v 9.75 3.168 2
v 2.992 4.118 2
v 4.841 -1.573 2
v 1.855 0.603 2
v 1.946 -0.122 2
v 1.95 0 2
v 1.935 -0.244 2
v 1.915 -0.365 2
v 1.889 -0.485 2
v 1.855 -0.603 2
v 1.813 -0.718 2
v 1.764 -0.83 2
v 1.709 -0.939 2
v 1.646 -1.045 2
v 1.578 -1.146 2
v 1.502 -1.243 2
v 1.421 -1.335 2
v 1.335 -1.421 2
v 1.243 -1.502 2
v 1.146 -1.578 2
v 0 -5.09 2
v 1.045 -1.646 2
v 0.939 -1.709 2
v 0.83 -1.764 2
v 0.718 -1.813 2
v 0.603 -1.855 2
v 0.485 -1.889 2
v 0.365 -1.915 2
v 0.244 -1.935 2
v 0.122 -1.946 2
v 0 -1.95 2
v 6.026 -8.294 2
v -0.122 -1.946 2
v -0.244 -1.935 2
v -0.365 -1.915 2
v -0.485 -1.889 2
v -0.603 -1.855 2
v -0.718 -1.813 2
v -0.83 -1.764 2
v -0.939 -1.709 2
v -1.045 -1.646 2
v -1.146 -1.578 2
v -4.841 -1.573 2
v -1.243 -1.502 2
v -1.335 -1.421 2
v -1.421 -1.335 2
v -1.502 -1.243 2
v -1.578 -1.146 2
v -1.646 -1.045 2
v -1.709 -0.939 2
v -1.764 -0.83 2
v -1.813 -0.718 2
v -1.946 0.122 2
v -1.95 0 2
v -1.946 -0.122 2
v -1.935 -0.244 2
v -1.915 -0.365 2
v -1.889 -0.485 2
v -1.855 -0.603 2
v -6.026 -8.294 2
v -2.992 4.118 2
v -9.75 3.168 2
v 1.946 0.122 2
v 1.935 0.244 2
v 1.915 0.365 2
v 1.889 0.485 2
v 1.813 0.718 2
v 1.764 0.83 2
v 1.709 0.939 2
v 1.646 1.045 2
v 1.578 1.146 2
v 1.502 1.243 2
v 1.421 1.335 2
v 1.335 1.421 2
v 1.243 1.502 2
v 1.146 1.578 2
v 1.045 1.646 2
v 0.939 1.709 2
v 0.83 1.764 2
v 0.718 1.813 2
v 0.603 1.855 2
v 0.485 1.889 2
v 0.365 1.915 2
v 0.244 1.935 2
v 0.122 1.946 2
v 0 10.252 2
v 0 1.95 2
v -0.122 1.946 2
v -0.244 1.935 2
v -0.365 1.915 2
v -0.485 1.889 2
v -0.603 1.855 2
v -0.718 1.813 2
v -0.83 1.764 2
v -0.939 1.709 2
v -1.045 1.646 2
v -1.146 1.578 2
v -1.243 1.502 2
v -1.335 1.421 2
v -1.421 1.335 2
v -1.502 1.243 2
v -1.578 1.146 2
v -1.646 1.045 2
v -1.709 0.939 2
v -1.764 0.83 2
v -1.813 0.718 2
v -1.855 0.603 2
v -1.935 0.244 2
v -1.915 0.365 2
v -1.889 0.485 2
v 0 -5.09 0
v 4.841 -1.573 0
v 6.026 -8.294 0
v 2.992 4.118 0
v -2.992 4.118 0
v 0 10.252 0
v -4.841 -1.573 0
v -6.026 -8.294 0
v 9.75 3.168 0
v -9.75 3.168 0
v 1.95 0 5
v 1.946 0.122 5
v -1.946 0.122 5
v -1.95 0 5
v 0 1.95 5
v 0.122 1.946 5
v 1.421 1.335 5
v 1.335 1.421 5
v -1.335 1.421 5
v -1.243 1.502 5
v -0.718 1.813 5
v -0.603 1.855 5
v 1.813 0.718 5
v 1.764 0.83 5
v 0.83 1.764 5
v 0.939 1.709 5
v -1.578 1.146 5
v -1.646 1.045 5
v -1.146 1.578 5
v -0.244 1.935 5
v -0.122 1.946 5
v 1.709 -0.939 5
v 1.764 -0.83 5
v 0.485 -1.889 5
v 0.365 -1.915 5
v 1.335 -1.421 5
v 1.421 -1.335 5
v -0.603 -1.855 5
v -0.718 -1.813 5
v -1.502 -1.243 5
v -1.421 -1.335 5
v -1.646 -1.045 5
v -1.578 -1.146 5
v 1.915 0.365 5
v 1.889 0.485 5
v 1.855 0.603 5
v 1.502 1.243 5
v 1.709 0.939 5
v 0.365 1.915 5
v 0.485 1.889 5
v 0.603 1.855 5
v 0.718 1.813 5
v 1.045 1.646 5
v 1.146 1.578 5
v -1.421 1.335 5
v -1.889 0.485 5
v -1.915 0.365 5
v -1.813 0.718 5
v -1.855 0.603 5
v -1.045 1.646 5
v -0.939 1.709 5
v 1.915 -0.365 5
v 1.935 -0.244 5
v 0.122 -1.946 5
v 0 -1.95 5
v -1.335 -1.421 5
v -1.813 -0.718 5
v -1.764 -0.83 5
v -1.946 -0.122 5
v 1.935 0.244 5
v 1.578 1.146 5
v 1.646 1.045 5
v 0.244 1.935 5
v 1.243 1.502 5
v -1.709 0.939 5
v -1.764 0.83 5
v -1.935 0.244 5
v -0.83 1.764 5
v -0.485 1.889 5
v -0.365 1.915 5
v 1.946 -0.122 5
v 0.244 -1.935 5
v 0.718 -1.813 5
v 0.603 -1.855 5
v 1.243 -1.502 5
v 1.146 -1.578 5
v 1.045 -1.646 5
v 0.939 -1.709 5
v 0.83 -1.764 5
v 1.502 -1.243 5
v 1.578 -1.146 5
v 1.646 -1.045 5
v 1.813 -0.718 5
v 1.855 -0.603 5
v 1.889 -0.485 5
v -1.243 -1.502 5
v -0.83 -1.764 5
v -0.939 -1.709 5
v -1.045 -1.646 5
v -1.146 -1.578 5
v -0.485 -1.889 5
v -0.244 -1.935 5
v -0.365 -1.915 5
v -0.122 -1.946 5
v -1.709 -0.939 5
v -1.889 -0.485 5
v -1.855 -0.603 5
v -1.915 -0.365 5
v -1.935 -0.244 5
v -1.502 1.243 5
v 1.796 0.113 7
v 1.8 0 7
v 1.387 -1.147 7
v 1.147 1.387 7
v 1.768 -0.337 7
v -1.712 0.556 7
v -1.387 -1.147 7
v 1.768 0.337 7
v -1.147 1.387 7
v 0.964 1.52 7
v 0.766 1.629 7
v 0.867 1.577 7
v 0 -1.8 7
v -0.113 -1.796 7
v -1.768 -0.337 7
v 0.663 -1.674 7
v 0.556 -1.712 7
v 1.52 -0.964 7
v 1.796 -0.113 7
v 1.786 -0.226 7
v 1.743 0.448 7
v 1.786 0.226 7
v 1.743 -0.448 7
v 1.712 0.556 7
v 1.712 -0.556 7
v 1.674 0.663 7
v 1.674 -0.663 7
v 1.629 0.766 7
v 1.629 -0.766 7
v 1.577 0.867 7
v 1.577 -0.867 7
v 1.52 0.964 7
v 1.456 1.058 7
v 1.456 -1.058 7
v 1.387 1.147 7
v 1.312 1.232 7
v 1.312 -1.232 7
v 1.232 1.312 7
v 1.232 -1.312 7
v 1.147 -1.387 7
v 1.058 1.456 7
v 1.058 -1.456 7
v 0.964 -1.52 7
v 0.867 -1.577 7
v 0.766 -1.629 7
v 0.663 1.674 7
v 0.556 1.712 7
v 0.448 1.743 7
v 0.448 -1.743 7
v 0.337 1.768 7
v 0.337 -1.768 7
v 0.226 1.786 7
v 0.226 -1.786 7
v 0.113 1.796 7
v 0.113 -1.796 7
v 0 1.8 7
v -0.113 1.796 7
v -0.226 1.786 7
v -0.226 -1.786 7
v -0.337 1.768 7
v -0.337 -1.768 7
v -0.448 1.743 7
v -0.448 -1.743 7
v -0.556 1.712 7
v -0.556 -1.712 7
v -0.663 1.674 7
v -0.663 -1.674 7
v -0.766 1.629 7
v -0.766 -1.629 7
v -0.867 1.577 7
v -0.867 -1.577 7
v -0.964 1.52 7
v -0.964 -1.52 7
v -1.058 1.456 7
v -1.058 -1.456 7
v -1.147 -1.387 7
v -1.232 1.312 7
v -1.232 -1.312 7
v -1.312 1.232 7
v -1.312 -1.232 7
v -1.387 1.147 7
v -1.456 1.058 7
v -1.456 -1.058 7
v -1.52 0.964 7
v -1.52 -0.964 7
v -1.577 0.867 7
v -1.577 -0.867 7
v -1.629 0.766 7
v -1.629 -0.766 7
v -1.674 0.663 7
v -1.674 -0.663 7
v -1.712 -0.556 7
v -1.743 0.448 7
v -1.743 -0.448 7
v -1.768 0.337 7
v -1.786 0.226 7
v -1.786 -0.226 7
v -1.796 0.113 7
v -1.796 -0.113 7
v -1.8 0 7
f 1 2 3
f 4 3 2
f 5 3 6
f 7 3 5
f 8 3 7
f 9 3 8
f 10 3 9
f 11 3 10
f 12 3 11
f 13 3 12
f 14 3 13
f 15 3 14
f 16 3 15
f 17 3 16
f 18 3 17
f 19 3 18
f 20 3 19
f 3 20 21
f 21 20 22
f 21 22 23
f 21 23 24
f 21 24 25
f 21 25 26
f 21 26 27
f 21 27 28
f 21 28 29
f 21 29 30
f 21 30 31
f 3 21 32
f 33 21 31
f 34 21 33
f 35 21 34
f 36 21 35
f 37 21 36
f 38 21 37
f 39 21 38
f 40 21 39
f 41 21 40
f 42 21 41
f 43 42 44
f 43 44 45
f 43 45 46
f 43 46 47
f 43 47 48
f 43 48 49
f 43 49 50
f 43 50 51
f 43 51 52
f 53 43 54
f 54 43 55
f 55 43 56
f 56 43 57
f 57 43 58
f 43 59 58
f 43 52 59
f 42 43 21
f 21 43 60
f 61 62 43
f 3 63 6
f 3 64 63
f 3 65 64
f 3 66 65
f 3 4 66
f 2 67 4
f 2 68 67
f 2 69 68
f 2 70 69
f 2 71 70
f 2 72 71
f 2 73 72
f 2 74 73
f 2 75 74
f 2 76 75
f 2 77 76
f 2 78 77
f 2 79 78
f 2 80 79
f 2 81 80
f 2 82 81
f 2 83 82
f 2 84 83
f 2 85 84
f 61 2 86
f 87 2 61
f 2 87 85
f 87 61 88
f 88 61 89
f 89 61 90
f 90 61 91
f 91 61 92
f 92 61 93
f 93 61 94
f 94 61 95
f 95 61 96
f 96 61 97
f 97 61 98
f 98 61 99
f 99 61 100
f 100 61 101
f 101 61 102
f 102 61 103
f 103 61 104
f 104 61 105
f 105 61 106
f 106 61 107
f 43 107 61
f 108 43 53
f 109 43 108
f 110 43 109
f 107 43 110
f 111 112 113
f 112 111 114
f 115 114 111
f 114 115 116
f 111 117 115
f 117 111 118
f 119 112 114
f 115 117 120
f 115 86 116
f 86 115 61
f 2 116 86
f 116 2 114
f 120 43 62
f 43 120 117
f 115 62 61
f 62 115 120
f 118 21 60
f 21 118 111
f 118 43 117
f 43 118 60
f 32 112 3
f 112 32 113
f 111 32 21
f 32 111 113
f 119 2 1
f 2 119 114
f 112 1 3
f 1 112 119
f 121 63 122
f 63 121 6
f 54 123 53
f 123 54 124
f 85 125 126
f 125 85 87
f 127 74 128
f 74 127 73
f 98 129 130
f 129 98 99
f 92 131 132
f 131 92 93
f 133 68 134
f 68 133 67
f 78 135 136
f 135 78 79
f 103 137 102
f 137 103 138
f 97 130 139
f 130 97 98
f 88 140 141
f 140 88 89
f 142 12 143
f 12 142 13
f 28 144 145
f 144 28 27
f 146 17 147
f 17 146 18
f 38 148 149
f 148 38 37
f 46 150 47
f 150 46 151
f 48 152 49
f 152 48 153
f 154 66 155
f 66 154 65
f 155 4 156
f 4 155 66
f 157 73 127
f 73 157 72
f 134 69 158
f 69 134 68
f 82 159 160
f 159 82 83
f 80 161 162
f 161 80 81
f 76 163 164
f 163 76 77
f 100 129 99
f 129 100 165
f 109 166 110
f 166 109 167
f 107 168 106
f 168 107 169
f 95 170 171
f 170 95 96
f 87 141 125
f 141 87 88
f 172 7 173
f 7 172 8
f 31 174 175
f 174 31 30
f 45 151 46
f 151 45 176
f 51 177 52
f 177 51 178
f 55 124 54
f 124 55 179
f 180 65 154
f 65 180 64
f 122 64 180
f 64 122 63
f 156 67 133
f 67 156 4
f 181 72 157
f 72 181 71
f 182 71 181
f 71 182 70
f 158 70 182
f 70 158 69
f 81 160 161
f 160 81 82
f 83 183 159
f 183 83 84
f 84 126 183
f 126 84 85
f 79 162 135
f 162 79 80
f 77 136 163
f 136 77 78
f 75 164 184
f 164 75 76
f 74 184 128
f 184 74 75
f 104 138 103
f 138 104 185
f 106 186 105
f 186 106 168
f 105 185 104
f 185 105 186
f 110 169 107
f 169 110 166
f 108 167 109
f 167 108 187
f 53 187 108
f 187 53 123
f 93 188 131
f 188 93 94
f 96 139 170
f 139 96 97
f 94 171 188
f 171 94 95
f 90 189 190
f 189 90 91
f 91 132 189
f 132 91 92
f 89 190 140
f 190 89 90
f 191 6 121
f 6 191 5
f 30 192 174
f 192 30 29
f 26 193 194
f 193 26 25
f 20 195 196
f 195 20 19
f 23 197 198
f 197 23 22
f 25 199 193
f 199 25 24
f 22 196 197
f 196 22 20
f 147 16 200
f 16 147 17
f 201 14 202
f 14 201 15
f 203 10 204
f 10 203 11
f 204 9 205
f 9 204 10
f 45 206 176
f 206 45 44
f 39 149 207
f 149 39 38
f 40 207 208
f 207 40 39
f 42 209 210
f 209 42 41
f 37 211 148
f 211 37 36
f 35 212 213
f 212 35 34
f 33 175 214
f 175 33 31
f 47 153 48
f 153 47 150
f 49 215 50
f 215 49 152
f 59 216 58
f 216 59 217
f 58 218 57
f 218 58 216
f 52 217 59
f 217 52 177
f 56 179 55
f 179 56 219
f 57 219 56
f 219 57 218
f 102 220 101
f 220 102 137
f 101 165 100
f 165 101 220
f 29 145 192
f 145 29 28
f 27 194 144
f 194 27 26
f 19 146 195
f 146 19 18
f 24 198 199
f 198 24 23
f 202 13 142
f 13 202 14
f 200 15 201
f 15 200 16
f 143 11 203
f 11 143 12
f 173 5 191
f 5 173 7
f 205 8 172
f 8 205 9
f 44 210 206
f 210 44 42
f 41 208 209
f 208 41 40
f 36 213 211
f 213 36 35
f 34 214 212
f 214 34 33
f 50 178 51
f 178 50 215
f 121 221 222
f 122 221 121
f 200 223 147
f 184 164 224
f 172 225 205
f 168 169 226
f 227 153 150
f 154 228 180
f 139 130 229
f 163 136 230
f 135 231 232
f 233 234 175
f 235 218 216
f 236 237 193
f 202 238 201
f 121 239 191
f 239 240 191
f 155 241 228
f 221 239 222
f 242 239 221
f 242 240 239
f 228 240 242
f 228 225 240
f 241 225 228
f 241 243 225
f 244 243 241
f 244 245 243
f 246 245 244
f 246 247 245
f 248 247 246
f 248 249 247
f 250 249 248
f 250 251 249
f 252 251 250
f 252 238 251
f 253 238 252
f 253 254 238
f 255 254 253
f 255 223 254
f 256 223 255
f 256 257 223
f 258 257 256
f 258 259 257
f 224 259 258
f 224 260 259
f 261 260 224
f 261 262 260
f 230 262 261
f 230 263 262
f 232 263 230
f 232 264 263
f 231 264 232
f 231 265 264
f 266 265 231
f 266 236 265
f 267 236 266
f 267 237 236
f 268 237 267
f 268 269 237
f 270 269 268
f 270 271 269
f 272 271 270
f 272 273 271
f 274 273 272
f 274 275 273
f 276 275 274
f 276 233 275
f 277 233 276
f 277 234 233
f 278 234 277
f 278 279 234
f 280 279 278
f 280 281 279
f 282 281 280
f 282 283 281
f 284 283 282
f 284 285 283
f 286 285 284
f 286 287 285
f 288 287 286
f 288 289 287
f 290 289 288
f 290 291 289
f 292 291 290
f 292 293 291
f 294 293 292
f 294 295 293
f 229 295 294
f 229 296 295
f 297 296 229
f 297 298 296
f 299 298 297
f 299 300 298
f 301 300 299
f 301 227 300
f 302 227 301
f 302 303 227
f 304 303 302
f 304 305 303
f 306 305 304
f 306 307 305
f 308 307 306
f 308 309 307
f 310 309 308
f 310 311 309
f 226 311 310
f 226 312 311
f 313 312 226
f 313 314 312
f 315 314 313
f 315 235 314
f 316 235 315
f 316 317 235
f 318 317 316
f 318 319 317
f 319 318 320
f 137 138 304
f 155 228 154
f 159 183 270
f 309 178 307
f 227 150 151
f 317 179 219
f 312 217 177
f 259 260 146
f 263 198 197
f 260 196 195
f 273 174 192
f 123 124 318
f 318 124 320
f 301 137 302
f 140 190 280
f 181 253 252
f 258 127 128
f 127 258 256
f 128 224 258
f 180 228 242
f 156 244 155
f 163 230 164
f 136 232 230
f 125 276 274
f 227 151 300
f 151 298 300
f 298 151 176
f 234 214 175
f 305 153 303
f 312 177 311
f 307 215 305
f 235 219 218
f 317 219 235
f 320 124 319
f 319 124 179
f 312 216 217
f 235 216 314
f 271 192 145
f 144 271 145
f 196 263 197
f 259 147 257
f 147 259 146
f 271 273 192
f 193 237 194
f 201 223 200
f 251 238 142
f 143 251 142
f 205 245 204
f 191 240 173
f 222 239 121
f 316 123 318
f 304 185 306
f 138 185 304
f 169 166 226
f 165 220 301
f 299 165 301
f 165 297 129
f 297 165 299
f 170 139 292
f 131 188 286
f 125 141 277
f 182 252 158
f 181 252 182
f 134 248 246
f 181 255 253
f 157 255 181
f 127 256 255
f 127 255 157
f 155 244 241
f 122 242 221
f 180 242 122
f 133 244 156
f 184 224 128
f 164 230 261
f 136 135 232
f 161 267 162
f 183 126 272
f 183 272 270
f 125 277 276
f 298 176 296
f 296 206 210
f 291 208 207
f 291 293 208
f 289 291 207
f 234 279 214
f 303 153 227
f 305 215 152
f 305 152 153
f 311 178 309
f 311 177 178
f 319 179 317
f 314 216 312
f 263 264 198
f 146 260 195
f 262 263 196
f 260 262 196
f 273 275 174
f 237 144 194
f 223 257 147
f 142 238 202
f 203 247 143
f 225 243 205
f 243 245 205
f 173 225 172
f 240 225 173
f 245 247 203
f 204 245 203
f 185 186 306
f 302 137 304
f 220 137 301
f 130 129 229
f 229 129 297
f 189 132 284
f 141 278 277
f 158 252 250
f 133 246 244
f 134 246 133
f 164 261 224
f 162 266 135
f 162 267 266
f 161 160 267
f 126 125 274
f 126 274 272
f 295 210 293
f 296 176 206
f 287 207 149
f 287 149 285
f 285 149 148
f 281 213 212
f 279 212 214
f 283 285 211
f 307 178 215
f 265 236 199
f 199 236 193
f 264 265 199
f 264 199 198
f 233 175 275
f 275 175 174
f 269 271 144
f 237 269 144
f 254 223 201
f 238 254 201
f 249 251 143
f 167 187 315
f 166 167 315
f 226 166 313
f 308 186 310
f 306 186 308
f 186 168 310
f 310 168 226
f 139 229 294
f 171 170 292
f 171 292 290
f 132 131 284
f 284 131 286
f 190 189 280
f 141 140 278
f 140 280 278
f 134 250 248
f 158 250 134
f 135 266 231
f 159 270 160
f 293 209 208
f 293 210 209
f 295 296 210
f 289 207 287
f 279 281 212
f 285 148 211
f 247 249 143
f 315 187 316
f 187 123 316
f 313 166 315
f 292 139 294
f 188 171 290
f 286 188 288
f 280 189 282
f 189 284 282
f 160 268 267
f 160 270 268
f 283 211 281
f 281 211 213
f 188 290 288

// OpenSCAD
// Lock Star
//
// Copyright (c) 2020 Jan Pieper (jhpieper.github@gmail.com)
//
// This code is hosted at github.com/jhpieper/marble-run under the MIT license.
// The 3D objects (STL files) are also hosted on thingiverse.com under
// the Creative Commons Attribution 4.0 International (CC BY 4.0) license.
//
// Permission is hereby granted, free of charge, to any person obtaining a copy
// of this software and associated documentation files (the "Software"), to
// deal in the Software without restriction, including without limitation the
// rights to use, copy, modify, merge, publish, distribute, sublicense, and/or
// sell copies of the Software, and to permit persons to whom the Software is
// furnished to do so, subject to the following conditions:
//
// The above copyright notice and this permission notice shall be included in
// all copies or substantial portions of the Software.
//
// THE SOFTWARE IS PROVIDED "AS IS", WITHOUT WARRANTY OF ANY KIND, EXPRESS OR
// IMPLIED, INCLUDING BUT NOT LIMITED TO THE WARRANTIES OF MERCHANTABILITY,
// FITNESS FOR A PARTICULAR PURPOSE AND NONINFRINGEMENT. IN NO EVENT SHALL THE
// AUTHORS OR COPYRIGHT HOLDERS BE LIABLE FOR ANY CLAIM, DAMAGES OR OTHER
// LIABILITY, WHETHER IN AN ACTION OF CONTRACT, TORT OR OTHERWISE, ARISING
// FROM, OUT OF OR IN CONNECTION WITH THE SOFTWARE OR THE USE OR OTHER DEALINGS
// IN THE SOFTWARE.

$fn=100;

union() {
  for (a=[0:360/5:360]) {
    rotate([0,0,a]) difference() {
      translate([-5,0,0]) cube([10,11,2]);
      translate([-5,0,-1]) rotate([0,0,64]) cube([30,30,4]);
      translate([5,0,-1]) rotate([0,0,26]) cube([30,30,4]);
    }
  }
          
  //color("#000000") cylinder(h=2, r=5);
  cylinder(h=5, r=1.95);
  translate([0,0,5]) cylinder(h=2, r1=1.95, r2=1.8);
}
